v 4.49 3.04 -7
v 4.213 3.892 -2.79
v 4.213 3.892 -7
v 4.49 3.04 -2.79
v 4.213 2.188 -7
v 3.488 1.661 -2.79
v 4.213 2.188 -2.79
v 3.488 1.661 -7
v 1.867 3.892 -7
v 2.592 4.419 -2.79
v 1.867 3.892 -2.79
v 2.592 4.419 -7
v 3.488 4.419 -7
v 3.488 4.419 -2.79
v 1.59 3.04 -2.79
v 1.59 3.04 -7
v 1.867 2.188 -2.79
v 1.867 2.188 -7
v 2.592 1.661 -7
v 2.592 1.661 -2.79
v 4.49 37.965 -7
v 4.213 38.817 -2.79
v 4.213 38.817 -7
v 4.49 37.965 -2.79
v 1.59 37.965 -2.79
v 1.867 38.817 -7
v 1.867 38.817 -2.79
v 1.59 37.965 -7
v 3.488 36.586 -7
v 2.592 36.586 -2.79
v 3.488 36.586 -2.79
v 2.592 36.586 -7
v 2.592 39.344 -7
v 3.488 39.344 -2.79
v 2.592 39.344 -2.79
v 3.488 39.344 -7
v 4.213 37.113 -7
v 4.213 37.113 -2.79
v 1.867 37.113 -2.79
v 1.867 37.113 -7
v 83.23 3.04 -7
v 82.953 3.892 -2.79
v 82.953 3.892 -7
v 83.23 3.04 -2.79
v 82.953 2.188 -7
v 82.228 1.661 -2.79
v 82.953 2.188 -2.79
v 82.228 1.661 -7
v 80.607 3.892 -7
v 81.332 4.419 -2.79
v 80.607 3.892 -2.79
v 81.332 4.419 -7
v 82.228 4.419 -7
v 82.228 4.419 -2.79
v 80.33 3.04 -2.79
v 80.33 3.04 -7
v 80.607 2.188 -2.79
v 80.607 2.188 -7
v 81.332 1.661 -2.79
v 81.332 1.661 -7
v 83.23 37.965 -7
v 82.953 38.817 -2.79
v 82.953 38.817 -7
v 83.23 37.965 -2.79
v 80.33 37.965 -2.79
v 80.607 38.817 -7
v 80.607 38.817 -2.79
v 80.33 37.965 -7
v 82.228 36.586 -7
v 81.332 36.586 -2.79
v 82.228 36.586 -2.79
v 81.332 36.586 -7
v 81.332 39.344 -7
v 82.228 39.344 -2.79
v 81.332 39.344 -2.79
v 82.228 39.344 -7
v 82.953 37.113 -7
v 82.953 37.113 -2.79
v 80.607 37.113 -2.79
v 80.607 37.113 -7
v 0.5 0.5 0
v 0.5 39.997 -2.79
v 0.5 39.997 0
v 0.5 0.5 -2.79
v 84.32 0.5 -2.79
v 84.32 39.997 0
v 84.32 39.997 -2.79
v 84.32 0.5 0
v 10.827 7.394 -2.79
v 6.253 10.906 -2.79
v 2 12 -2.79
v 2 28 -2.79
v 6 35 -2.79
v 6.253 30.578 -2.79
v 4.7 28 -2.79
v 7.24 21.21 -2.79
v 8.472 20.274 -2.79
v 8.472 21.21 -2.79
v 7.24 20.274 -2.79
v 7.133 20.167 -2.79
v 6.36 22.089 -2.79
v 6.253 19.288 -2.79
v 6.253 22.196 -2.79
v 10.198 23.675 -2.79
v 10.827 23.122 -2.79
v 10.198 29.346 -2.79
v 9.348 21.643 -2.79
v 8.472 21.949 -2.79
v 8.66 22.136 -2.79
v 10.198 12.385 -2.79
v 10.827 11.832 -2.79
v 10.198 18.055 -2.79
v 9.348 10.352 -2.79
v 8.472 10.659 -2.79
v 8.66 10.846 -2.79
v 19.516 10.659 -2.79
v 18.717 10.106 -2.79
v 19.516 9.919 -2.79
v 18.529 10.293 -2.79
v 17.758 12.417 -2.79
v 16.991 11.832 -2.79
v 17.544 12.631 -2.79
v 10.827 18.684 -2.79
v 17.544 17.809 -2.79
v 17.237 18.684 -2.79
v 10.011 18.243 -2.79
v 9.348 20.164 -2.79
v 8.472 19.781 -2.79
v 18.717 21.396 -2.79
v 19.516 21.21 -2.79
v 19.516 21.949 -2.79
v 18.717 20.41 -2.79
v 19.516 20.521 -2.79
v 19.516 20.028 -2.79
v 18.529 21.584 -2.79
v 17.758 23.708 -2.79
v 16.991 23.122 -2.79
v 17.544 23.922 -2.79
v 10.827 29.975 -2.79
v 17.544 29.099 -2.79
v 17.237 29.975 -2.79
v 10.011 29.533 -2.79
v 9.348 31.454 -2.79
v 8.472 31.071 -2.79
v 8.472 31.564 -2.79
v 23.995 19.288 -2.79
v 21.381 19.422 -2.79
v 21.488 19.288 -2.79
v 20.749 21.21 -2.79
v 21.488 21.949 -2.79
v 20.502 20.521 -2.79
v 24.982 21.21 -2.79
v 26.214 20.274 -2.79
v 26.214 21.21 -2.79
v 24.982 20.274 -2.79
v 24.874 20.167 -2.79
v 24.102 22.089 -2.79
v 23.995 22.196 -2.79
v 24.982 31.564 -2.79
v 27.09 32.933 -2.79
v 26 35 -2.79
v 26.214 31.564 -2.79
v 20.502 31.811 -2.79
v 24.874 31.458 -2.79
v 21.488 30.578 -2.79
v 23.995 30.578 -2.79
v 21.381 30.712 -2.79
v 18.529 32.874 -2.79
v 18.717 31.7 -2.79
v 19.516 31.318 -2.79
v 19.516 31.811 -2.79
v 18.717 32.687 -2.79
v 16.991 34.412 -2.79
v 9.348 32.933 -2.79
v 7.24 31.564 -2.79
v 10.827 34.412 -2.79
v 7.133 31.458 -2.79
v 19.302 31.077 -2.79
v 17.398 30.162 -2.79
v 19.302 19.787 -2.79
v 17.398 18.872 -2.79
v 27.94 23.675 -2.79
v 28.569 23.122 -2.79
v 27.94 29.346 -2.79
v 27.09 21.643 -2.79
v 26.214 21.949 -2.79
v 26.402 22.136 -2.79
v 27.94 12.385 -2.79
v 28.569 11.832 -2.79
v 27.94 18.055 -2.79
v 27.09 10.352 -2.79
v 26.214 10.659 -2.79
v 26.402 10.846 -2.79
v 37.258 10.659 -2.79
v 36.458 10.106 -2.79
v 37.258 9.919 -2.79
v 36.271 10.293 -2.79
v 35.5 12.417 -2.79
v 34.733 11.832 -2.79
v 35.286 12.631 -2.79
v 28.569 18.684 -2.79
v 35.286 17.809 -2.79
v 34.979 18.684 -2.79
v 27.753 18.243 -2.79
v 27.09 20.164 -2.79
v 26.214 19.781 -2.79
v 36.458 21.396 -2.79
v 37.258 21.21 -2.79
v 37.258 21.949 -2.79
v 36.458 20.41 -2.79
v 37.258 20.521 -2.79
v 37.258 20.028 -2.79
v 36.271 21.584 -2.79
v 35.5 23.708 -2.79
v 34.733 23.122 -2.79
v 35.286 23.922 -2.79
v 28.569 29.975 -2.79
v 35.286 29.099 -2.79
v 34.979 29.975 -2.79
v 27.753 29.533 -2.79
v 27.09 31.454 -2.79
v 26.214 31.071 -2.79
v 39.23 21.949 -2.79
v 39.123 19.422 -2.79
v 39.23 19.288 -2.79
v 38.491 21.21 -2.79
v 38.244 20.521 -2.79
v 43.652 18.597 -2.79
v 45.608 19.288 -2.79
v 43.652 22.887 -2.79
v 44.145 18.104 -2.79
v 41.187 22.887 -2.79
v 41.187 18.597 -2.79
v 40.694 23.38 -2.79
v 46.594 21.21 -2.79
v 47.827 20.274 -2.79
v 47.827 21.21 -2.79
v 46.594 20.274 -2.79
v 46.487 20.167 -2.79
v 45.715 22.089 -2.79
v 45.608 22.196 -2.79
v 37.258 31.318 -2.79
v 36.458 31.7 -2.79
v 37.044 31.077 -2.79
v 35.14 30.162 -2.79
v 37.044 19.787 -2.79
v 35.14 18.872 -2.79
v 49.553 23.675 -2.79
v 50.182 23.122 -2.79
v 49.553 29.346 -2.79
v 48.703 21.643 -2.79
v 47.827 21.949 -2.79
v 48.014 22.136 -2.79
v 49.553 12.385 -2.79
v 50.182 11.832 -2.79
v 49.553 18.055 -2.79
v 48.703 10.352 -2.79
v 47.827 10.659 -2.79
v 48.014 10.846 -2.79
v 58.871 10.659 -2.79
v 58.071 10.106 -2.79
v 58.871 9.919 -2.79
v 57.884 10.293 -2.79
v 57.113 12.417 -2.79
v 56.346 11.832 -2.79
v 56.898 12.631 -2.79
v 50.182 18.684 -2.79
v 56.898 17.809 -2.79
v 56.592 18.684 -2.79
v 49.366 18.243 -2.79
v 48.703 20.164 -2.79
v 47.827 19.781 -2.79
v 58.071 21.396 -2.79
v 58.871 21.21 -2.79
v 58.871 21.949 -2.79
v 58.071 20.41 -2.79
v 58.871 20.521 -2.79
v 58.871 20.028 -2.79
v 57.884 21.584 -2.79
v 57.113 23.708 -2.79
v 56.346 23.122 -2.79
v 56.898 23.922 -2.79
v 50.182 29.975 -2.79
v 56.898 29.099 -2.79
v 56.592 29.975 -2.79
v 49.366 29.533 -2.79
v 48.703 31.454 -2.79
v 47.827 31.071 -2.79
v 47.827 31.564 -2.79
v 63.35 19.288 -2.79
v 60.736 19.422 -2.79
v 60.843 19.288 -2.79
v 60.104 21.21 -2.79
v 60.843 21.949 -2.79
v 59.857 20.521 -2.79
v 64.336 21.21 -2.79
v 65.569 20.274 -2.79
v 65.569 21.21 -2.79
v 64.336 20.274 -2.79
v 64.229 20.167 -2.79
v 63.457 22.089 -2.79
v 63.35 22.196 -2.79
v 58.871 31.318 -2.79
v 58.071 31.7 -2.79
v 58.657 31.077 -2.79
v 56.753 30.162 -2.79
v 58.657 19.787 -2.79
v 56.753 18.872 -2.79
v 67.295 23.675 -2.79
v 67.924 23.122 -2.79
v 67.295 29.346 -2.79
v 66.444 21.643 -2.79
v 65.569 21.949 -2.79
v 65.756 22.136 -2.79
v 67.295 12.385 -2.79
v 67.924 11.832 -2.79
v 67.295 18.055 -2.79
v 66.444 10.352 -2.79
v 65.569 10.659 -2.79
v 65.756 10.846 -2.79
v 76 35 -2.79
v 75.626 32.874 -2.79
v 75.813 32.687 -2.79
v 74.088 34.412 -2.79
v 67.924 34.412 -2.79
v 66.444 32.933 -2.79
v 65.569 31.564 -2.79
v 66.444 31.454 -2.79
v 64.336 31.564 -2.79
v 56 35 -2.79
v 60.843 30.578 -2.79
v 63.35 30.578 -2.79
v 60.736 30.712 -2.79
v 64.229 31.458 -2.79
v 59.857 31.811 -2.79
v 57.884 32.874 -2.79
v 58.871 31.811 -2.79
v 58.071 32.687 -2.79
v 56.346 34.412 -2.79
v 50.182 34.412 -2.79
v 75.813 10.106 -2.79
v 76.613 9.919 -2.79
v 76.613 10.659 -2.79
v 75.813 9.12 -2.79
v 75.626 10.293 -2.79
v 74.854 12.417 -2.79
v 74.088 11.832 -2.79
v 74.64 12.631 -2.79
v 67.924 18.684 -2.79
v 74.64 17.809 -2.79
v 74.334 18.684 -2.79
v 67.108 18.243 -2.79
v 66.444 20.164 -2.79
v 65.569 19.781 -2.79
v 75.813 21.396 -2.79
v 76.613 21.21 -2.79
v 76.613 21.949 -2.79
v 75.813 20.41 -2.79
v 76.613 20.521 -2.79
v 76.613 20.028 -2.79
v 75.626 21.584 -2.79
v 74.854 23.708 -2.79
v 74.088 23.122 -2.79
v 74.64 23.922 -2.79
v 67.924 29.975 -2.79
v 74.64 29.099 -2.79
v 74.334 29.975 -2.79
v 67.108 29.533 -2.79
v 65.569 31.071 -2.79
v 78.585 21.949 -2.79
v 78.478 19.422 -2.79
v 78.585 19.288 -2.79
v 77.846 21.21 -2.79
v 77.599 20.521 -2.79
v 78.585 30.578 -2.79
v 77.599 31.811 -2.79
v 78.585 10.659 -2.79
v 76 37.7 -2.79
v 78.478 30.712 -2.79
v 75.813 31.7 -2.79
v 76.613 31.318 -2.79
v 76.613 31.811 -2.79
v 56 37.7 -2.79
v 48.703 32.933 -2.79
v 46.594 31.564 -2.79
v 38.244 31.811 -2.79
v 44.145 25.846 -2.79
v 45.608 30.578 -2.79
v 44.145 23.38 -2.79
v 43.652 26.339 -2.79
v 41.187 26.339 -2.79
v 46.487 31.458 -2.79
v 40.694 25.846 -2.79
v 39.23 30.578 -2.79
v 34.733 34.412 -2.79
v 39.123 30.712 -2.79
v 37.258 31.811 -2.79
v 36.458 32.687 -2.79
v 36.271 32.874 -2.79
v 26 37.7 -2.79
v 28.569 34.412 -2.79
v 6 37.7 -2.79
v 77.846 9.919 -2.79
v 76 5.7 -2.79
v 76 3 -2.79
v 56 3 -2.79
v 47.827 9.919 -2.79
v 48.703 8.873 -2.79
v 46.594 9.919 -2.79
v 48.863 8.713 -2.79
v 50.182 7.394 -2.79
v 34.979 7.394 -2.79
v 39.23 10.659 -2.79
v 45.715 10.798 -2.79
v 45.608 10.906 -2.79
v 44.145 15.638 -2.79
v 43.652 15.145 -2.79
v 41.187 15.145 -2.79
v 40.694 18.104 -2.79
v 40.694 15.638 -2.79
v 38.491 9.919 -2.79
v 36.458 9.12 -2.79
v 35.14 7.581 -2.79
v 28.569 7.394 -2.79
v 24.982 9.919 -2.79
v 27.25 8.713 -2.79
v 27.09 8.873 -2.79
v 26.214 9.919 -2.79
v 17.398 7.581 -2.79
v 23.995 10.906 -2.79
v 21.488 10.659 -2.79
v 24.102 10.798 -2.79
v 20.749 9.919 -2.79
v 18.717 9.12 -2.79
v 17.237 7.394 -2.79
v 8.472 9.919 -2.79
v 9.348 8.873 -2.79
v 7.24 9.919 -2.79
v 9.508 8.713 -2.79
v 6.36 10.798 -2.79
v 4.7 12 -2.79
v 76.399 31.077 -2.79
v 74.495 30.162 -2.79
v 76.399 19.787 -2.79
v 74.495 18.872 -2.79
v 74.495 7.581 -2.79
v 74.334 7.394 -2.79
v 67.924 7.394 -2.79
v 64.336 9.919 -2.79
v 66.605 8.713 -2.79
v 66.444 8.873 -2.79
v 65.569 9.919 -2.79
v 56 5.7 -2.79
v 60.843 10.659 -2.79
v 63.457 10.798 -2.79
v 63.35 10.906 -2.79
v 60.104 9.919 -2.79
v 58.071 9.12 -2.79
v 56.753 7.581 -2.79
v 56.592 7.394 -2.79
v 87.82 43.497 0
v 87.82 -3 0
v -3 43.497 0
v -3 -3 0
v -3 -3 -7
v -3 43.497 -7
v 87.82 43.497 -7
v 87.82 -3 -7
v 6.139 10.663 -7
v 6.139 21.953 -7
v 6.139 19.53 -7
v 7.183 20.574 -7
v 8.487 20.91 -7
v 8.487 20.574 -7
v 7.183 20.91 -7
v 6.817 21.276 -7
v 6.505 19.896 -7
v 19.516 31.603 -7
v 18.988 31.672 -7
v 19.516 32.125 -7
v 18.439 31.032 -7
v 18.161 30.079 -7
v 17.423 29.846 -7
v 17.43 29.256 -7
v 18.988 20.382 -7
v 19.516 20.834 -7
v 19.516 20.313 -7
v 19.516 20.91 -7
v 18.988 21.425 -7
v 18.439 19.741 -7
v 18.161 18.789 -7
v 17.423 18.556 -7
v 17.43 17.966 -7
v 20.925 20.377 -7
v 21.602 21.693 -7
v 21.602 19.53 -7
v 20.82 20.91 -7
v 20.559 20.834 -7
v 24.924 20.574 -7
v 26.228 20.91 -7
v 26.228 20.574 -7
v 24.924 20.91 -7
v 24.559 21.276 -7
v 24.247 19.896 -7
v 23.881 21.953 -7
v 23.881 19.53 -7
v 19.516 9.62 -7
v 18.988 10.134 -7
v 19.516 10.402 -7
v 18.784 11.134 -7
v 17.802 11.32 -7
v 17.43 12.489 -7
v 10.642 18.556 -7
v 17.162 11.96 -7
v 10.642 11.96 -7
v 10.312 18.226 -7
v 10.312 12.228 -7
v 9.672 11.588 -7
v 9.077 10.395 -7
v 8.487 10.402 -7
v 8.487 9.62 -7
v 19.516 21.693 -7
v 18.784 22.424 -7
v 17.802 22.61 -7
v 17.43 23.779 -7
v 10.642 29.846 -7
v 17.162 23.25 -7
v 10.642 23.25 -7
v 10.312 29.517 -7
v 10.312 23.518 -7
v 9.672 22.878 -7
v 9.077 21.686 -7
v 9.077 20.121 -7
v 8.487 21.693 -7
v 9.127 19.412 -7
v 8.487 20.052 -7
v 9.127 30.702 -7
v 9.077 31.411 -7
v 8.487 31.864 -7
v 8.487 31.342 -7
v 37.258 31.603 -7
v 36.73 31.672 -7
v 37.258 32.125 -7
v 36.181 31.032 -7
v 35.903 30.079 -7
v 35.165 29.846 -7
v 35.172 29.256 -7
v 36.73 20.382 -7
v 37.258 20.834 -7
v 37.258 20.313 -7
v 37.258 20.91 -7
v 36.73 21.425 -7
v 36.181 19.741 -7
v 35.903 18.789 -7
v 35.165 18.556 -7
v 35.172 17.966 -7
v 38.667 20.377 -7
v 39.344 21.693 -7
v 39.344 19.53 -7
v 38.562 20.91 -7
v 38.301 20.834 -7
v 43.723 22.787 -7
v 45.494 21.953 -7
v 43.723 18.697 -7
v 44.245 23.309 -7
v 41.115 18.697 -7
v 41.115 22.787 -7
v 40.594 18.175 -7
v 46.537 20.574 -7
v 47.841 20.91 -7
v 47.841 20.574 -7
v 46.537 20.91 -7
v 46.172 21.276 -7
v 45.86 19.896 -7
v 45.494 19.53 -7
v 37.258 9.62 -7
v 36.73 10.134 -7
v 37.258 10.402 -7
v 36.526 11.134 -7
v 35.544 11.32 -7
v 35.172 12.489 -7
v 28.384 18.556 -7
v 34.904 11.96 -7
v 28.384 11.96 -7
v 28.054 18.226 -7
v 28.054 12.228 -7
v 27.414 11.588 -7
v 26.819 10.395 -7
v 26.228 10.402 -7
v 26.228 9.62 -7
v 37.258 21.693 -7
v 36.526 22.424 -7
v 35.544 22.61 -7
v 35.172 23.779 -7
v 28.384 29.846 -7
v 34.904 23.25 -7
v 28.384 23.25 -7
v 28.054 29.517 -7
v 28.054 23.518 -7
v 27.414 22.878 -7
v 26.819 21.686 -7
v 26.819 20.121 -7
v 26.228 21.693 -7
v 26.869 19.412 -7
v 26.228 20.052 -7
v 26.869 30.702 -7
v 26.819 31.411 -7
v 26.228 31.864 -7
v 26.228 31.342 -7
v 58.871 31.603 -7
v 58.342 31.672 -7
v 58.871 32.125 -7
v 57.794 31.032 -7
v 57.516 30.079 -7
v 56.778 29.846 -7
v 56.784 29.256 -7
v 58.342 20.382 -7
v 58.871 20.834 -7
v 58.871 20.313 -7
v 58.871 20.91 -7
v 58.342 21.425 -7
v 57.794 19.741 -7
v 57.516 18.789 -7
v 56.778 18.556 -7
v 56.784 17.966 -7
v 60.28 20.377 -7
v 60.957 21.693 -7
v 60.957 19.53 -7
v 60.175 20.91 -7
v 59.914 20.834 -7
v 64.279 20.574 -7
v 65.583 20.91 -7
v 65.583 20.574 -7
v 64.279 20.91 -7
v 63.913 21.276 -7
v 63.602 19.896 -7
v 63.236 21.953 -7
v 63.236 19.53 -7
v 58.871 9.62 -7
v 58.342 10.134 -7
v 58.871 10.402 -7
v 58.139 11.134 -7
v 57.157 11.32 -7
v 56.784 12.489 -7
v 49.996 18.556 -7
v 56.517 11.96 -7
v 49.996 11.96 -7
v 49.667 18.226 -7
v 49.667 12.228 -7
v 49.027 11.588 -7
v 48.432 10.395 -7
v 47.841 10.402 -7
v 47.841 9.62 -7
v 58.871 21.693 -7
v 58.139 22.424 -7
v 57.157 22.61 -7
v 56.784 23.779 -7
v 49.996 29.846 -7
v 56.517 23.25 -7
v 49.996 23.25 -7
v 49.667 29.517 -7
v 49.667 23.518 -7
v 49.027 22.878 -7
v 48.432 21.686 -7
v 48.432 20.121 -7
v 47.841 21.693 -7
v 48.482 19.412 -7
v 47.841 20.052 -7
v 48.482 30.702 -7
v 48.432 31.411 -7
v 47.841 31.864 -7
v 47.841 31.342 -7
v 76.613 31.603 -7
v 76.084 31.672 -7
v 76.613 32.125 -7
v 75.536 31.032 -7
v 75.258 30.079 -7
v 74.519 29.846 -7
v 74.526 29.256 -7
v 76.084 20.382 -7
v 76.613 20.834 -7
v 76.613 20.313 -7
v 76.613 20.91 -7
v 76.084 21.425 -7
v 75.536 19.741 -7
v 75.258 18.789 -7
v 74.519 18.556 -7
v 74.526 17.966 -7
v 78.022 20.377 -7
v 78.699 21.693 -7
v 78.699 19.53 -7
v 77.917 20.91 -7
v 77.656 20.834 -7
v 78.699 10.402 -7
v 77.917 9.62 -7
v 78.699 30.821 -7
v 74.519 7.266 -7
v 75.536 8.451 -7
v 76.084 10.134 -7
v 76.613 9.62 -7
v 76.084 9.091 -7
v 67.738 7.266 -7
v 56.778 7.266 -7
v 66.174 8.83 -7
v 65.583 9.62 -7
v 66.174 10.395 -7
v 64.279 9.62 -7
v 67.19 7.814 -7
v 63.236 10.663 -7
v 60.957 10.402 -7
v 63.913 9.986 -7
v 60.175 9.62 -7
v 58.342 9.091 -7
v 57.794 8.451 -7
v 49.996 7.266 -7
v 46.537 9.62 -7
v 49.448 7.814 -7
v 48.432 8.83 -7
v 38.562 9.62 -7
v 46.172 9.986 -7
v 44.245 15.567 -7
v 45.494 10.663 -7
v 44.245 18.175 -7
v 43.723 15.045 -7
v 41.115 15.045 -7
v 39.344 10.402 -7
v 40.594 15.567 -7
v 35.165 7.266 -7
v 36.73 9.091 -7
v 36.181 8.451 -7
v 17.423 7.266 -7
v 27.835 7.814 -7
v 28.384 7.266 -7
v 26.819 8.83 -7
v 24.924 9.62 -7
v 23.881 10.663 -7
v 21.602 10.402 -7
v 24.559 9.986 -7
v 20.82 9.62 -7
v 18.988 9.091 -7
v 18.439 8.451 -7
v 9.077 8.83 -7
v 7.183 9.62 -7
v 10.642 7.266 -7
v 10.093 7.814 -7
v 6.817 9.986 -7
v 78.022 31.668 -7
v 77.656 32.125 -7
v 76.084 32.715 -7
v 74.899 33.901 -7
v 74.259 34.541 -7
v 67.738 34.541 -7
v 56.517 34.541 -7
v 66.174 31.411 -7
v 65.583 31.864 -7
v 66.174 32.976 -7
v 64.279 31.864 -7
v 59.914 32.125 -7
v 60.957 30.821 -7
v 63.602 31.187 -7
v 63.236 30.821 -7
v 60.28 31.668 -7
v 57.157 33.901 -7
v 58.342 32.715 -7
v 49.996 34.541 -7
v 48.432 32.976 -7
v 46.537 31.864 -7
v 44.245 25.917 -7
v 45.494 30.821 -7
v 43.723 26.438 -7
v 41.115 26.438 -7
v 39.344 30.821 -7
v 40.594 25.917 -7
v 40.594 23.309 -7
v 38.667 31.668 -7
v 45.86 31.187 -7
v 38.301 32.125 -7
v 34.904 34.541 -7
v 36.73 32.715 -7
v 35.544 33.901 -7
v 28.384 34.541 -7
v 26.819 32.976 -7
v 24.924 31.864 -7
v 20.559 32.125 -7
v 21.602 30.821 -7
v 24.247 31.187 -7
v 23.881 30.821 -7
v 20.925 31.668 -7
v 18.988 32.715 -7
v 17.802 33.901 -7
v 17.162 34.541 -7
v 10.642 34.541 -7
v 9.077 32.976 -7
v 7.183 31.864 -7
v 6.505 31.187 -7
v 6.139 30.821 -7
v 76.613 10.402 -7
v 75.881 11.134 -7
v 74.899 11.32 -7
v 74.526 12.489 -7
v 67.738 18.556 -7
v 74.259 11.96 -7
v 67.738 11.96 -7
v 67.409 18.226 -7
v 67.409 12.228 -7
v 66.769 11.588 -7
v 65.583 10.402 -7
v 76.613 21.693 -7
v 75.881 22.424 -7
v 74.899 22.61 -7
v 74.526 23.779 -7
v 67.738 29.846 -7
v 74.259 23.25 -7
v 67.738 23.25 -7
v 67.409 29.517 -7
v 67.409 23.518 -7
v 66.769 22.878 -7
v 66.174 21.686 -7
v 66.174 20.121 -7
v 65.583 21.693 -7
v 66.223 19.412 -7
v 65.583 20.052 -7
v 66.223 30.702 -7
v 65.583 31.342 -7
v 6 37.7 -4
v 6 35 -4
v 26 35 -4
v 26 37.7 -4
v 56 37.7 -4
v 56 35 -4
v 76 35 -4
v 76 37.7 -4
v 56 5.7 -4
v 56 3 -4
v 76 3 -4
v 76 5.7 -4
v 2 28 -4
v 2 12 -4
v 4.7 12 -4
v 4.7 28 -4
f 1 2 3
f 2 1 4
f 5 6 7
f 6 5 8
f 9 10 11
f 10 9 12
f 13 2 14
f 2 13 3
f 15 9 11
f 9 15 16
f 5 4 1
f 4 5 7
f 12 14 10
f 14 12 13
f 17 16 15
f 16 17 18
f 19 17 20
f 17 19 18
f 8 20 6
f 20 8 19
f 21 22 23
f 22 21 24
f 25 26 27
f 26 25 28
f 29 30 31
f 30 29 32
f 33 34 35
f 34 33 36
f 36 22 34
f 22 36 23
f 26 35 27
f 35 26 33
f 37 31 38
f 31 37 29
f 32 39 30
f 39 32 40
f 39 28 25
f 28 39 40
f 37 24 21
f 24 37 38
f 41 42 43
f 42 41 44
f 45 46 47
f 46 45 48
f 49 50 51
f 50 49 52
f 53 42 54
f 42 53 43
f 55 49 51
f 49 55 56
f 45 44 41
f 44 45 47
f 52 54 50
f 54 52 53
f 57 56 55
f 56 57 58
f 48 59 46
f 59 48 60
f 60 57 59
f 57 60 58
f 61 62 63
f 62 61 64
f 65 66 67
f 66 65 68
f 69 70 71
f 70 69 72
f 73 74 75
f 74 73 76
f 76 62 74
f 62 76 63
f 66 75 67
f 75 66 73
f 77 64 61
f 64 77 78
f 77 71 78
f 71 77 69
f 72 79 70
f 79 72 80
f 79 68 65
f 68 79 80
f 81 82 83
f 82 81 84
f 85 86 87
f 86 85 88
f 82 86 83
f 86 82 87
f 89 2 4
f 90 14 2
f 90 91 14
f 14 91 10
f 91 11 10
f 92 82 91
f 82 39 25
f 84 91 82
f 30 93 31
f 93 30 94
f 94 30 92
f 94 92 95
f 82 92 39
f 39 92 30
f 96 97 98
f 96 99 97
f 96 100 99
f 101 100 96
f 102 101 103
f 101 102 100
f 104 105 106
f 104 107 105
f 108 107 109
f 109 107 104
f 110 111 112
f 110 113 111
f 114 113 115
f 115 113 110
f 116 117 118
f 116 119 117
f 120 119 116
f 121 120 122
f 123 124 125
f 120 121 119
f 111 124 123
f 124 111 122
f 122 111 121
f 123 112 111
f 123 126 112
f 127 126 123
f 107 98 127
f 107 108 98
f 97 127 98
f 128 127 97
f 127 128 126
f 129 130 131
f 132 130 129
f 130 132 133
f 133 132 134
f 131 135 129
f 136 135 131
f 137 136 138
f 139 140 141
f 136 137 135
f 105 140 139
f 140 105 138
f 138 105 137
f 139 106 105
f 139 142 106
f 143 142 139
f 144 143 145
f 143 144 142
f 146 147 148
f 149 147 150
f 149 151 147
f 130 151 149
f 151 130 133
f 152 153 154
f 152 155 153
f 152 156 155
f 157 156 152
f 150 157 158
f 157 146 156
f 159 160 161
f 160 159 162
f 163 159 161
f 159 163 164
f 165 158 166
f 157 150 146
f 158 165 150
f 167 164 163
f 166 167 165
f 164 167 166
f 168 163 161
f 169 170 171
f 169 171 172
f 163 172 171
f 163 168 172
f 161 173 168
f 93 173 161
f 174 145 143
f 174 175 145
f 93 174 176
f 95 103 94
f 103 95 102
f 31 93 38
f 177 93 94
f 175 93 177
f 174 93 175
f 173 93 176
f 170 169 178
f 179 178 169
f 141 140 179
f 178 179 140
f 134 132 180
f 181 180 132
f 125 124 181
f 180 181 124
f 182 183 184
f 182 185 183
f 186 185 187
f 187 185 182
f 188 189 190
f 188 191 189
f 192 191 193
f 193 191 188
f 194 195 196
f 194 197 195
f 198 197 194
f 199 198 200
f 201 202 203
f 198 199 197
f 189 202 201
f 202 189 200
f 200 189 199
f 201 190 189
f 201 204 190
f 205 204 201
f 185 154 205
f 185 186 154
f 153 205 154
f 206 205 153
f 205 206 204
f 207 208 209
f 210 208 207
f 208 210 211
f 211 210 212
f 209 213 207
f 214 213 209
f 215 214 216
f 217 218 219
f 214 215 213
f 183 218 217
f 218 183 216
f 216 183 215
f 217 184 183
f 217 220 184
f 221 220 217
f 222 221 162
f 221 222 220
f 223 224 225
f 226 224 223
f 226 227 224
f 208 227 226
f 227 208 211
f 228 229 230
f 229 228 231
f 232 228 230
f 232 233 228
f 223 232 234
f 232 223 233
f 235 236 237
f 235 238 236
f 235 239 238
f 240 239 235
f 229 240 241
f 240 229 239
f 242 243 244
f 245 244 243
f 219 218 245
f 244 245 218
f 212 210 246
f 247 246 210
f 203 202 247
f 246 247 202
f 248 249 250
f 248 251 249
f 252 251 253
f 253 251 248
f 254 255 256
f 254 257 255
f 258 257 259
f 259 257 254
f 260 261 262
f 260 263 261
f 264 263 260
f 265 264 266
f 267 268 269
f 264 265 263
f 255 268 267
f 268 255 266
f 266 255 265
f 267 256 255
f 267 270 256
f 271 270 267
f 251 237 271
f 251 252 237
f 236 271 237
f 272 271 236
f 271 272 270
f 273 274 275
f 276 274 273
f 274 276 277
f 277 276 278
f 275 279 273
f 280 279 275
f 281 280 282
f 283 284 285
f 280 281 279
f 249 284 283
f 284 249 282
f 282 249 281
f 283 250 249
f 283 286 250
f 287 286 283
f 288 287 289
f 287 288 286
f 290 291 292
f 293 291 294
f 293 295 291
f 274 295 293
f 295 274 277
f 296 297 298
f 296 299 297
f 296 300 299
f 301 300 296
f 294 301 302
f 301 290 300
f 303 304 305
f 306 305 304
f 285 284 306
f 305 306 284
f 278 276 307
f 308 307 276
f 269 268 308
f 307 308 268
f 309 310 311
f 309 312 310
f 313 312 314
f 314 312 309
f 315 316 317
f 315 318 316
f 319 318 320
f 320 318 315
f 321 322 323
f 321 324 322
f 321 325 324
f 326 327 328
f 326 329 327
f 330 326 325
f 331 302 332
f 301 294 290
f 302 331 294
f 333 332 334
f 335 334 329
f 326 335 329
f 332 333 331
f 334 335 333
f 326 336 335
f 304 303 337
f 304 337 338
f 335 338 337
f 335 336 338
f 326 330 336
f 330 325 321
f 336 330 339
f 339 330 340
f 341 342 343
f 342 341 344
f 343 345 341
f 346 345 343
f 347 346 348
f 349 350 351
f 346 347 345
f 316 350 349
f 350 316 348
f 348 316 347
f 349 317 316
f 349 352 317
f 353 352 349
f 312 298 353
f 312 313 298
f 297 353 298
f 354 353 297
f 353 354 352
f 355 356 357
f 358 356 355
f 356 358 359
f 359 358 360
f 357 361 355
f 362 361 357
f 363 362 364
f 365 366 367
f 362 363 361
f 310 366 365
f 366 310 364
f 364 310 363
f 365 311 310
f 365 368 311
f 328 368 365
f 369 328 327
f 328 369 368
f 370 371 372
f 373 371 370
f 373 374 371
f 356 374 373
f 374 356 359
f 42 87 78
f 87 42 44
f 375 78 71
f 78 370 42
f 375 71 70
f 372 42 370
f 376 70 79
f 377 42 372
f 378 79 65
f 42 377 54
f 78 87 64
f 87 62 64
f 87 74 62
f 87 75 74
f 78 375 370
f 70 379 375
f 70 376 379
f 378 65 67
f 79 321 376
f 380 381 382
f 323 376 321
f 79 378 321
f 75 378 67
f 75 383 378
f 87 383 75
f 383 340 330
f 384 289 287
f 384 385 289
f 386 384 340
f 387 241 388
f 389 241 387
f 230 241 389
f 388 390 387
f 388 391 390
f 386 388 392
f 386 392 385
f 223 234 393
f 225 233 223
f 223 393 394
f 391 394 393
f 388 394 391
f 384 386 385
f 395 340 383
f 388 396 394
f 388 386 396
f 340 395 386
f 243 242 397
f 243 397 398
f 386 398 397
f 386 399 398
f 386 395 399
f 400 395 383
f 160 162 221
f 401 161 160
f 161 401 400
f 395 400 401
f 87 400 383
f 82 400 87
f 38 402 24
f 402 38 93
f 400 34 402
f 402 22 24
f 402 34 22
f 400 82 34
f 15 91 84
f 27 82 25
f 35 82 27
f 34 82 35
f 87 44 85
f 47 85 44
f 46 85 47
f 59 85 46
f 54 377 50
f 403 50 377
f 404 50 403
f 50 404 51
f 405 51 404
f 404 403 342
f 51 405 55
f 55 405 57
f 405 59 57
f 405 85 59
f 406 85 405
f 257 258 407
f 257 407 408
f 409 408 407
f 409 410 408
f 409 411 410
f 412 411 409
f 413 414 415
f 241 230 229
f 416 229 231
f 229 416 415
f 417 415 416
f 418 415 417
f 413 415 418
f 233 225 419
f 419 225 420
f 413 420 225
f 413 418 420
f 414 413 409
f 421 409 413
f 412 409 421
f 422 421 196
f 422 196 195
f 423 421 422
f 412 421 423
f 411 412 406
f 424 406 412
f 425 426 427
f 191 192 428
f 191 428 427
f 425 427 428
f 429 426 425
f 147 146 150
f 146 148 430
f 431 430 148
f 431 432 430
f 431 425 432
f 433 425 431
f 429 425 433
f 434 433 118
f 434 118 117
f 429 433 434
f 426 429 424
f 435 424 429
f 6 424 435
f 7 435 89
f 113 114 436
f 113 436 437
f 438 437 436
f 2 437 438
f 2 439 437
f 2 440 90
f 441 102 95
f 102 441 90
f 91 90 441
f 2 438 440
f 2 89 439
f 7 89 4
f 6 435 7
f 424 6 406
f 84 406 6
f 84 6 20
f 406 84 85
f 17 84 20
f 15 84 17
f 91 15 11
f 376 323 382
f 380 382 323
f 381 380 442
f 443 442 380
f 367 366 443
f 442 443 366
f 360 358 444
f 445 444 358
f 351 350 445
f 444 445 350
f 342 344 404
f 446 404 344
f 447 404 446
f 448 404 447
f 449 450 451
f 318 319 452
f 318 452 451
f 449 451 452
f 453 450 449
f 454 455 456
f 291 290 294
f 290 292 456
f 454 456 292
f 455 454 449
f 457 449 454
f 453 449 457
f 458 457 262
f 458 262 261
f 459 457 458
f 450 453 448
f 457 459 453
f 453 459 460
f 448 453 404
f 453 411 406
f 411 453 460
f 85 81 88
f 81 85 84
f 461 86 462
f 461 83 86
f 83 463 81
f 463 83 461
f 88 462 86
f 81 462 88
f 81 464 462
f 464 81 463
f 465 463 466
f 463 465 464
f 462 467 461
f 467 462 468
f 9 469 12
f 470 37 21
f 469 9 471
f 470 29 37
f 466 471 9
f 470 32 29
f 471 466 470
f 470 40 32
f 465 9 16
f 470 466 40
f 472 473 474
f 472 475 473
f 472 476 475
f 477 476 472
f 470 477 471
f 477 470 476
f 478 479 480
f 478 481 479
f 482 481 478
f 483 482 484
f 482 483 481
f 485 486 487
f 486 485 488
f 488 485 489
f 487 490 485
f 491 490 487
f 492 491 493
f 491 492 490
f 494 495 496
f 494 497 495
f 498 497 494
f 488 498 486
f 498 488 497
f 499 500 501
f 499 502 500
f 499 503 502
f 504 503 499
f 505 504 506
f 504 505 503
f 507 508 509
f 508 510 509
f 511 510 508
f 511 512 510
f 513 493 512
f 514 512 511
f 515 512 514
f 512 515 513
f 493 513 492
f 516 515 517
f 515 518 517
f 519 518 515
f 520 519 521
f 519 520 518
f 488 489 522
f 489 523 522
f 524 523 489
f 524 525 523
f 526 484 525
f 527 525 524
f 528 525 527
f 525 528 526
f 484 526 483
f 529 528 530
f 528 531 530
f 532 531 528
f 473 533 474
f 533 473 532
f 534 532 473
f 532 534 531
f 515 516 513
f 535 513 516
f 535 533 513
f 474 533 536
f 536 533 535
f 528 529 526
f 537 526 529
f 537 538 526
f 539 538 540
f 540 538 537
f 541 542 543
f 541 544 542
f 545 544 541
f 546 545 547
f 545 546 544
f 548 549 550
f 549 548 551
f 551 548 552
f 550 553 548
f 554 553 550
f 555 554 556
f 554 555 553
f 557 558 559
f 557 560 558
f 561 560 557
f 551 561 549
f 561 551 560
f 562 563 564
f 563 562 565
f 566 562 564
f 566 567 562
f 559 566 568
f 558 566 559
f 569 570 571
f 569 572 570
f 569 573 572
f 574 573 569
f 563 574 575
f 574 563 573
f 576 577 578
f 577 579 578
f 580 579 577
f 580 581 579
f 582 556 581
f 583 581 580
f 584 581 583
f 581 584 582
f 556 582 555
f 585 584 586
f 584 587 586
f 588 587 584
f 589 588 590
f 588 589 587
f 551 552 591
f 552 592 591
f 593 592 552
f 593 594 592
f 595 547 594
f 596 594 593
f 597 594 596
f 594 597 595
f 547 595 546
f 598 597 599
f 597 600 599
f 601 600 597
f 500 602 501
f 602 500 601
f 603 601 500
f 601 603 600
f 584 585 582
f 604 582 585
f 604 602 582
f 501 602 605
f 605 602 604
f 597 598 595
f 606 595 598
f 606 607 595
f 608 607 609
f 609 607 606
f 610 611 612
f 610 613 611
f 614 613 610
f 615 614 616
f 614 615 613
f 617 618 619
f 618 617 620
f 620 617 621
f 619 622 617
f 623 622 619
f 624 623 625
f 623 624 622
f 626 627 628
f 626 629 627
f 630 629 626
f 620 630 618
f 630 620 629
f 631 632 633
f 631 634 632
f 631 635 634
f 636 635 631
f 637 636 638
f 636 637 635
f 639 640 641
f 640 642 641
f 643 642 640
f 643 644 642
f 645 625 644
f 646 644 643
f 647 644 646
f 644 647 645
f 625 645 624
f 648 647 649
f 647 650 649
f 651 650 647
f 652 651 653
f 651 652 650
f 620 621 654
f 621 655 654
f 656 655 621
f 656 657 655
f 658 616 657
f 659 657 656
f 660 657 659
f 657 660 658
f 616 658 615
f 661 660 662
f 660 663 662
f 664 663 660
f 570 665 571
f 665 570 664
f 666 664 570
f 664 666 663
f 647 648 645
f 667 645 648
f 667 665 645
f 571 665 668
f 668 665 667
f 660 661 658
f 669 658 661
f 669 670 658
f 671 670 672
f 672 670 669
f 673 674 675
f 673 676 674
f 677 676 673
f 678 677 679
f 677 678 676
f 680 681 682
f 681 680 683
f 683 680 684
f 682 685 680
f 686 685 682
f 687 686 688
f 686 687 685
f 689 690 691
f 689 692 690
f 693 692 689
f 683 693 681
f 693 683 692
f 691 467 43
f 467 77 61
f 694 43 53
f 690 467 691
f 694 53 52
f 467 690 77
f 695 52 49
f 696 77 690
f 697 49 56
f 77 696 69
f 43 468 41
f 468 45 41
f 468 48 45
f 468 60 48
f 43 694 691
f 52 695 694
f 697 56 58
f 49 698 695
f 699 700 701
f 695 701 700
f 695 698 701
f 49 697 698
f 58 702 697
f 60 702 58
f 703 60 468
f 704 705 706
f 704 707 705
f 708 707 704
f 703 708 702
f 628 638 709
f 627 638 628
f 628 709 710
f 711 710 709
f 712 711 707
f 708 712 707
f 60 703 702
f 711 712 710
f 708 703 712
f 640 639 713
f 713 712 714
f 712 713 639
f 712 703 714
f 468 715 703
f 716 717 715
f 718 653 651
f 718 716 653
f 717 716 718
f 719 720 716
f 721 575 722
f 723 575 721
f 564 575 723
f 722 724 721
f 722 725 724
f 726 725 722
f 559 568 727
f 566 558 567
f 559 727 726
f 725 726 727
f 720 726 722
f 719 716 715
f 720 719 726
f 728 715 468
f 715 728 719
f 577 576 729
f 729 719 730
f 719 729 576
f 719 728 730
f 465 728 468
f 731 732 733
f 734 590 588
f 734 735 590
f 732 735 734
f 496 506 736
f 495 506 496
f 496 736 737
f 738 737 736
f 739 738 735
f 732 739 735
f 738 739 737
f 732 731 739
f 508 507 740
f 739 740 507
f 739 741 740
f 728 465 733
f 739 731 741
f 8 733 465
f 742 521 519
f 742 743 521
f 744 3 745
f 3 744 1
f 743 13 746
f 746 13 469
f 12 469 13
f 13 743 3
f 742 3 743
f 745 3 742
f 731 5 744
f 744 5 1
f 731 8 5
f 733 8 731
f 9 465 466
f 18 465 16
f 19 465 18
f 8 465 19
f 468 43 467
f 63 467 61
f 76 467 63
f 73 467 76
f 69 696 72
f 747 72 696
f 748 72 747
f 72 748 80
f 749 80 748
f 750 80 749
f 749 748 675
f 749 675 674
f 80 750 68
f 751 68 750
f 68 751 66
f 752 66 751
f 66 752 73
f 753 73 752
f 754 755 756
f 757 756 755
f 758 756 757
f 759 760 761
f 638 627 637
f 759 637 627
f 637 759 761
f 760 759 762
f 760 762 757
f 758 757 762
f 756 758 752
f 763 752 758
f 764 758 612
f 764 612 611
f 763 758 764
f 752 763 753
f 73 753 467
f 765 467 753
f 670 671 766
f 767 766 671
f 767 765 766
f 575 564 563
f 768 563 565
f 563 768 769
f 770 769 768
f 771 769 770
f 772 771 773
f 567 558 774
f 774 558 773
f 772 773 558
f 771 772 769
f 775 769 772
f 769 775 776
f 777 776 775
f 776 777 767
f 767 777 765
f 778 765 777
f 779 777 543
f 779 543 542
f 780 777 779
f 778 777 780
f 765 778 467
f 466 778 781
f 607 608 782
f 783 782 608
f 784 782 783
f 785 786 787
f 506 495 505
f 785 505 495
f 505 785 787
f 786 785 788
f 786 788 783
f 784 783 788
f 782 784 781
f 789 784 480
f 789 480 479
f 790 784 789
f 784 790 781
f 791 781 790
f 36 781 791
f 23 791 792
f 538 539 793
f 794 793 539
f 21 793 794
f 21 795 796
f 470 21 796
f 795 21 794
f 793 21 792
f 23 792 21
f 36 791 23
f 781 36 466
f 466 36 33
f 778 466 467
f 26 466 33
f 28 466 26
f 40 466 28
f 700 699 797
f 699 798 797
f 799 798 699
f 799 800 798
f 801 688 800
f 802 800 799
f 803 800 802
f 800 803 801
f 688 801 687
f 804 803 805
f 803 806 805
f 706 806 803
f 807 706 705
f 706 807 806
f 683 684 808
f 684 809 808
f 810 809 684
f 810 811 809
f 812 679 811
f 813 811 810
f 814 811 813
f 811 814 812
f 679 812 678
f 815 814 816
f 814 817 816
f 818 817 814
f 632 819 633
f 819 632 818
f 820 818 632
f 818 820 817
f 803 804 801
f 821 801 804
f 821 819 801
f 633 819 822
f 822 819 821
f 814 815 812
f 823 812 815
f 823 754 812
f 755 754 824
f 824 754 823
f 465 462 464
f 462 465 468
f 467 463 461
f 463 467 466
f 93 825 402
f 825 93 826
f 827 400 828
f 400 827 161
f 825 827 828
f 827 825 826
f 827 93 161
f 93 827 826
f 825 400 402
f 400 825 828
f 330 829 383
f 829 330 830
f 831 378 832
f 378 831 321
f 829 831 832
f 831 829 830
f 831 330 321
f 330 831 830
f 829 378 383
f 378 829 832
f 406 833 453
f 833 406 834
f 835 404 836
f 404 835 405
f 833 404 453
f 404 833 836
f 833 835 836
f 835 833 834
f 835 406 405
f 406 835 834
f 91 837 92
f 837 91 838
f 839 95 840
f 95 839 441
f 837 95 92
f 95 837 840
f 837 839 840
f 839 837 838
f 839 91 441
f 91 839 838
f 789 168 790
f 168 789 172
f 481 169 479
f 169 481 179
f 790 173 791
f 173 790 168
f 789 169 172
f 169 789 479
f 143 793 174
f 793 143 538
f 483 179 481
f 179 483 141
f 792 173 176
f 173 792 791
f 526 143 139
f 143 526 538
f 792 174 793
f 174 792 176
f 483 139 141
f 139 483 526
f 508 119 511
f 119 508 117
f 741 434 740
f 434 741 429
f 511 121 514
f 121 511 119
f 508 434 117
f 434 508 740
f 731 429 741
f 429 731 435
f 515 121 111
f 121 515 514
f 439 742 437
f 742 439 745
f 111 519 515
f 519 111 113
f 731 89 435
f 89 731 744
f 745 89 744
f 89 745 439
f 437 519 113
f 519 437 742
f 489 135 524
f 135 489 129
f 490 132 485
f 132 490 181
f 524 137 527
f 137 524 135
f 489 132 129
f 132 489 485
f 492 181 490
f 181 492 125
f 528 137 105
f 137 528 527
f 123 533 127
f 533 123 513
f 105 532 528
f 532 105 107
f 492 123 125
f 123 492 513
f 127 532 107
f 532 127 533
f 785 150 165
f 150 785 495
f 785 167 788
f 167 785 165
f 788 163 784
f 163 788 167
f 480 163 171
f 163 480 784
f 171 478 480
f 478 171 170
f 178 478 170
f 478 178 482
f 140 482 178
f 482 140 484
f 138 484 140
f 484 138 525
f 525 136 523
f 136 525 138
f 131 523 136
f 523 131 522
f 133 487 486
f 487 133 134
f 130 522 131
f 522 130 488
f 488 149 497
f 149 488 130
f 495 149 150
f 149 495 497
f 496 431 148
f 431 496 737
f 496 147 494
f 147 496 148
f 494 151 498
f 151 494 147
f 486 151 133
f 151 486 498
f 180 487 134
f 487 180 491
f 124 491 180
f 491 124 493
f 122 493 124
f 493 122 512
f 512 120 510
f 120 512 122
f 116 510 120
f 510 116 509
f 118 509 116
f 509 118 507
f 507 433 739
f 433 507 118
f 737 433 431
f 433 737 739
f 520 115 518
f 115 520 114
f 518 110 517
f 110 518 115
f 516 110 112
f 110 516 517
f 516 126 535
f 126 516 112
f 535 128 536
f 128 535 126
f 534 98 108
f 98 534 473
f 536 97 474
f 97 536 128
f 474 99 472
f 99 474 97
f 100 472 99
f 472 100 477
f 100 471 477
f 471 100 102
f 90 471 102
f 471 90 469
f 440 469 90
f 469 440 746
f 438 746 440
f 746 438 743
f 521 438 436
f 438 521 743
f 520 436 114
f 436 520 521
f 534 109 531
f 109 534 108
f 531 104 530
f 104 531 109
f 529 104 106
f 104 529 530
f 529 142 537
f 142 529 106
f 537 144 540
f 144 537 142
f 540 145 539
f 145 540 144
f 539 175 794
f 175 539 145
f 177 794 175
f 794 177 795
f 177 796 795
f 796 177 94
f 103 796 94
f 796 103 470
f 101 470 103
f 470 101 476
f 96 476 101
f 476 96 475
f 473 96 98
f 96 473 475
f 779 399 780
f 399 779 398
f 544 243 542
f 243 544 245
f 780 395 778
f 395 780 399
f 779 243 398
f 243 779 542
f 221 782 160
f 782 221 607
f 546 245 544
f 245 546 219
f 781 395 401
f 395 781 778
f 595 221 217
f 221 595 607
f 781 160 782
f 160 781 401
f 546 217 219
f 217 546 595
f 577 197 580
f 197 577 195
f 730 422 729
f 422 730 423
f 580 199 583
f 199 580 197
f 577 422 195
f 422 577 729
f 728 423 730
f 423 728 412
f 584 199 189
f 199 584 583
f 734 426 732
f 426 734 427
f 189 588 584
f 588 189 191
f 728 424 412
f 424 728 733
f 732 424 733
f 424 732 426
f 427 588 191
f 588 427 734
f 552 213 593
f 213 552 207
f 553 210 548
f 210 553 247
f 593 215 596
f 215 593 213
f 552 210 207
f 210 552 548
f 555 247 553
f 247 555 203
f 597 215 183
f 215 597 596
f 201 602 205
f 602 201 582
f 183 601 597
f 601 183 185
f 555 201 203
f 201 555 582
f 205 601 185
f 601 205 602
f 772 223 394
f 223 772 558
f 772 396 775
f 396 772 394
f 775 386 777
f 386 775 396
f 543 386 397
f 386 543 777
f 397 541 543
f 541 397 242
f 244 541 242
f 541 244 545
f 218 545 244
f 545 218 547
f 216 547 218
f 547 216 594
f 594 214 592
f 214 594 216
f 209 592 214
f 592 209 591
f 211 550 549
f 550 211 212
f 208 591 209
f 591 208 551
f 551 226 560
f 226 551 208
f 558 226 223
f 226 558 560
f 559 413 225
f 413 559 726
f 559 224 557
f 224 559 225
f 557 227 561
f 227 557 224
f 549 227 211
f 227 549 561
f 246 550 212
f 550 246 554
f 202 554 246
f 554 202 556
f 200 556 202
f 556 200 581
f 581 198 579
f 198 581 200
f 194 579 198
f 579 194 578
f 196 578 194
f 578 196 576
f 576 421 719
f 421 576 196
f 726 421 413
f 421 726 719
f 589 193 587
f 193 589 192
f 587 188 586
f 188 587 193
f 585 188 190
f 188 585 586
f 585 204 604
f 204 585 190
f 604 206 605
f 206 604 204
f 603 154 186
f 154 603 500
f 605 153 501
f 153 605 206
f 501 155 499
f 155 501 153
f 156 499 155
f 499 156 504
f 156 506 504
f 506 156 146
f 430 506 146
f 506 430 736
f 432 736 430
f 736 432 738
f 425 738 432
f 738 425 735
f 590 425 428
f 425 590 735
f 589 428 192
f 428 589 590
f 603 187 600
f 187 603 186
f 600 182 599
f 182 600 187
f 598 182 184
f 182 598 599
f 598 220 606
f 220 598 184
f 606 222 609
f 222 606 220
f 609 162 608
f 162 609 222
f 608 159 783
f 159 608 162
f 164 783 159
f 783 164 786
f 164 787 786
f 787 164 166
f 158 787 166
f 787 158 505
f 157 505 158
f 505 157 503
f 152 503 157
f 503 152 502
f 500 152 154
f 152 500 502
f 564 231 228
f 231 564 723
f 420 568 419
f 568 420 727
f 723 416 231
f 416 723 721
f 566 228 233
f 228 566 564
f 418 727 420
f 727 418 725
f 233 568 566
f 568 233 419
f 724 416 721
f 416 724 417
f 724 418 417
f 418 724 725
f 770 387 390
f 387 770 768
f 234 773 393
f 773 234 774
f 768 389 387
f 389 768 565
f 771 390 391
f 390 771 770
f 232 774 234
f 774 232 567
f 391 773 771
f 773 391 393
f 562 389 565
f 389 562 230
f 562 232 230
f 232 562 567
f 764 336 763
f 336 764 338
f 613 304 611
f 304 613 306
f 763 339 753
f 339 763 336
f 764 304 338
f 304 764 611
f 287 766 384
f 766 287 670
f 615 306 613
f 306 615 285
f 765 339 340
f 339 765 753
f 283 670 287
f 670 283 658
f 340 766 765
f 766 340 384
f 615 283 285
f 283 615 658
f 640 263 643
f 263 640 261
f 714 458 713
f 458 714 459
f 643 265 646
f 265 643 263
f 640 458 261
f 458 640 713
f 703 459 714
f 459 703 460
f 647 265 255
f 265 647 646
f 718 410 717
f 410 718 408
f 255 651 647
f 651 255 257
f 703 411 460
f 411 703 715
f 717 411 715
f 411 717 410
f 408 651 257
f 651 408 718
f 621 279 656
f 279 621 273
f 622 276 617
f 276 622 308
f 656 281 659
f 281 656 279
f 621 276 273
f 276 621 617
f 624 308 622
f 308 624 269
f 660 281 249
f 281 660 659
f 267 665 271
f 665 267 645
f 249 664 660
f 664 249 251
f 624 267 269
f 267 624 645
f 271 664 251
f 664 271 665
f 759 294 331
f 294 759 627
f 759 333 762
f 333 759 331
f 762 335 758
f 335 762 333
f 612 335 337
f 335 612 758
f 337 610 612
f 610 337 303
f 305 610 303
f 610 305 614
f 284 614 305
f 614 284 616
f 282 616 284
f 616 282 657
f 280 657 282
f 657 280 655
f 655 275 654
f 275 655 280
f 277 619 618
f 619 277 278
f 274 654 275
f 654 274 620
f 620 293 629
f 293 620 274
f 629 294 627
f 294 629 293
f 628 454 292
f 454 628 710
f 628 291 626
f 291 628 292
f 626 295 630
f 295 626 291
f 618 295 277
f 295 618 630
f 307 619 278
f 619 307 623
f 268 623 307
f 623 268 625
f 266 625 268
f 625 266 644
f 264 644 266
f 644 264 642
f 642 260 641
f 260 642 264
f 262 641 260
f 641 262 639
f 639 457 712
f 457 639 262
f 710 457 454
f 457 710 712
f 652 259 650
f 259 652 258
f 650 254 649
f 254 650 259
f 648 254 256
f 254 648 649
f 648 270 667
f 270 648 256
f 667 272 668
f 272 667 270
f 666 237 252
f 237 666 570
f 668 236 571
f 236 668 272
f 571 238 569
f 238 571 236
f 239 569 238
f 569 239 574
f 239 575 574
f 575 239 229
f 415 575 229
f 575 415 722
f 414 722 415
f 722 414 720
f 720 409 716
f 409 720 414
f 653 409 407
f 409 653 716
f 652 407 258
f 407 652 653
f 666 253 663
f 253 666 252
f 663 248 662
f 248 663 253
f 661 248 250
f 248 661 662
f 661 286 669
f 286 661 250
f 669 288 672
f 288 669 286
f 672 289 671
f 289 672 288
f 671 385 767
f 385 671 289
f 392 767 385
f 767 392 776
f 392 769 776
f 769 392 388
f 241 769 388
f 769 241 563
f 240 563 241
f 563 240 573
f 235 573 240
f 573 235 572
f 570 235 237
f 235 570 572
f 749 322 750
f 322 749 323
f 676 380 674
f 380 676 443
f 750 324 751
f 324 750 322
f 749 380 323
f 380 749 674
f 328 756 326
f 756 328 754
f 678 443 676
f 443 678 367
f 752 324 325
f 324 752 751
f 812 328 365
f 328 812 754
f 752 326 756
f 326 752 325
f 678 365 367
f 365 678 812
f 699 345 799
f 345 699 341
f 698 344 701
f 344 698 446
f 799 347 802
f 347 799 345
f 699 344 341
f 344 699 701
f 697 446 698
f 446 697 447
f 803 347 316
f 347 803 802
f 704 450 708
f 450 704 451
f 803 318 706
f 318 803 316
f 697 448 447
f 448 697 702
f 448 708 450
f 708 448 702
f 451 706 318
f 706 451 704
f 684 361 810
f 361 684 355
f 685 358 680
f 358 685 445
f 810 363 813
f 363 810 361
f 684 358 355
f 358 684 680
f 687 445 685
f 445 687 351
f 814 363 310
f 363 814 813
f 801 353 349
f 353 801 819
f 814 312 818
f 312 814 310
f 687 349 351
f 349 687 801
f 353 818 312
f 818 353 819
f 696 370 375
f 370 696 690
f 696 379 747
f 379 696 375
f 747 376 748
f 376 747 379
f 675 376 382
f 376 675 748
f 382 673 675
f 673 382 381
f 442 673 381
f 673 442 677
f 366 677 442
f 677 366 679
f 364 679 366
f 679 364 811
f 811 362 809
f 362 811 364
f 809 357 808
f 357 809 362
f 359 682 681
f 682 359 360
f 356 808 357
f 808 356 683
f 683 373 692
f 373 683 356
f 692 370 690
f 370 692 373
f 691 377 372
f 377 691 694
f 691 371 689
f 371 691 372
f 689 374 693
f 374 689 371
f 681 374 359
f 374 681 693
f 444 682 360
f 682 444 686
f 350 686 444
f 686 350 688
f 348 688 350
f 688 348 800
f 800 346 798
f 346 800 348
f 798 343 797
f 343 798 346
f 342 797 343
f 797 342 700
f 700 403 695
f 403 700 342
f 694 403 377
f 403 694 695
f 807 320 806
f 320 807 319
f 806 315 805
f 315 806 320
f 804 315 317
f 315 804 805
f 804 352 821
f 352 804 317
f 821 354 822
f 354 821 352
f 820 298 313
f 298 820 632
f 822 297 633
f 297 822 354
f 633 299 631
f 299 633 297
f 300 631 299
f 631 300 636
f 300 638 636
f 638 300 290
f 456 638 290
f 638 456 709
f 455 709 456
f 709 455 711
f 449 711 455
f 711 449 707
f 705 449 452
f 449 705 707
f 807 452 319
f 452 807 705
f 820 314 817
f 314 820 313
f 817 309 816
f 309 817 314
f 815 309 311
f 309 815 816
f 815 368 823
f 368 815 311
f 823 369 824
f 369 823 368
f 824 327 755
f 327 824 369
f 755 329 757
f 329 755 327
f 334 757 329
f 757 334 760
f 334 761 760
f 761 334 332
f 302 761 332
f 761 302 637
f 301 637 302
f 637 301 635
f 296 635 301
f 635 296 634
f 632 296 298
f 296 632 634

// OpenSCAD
$fn = 10;

skinBreak = 0.01;       // extra depth to poke a hole through a surface

//boardW = 146;
//boardH = 63.7;     // was 63.45 - tight

// Eagle dimensions of v.2 board
//  + slop to fit
eagleBoardW = (33 * 2.54);      // 83.82;
eagleBoardH = (15.55 * 2.54); // 39.37;
eagleBoardD = 2.8; // 1.8;
eagleBoardX = .5;       // offset into board hole (1/2 of fudge value)
eagleBoardY = .5;
eagleBoardZ = 0;
boardW = eagleBoardW + (eagleBoardX*2);
boardH = eagleBoardH + (eagleBoardY*2);
boardD = eagleBoardD + skinBreak;

boardX = 0;
boardY = 4;

boardFrameW = 3;
boardFrameX = 0;
boardFrameY = 0;

reflectorWidth = boardW;
reflectorHeight = boardH + boardFrameW;
reflectorDepth = 7;
refOffZ = reflectorDepth / 2;

strokeWidth = 0.3;



segMul = 1.27;


headerHeight = 2.7;
headerYOffset = 35;
headerAOffset = 6;
headerAWidth = 20;
headerBOffset = 56;
headerBWidth = 20;
headerY2Offset =  3;
headerCOffset = 56;
headerCWidth = 20;
headerY3Offset = 12;
headerDOffset = 2;
headerDHeight = 16;
headerDepth = 10;
headerBackDepth = 4;

module pinClearance() {
    // pixel I/O header
        translate([headerAOffset, headerYOffset, -headerBackDepth])
            cube([headerAWidth, headerHeight, headerDepth]);
    // I2C header
        translate([headerBOffset, headerYOffset, -headerBackDepth])
            cube([headerBWidth, headerHeight, headerDepth]);
    // prog header
        translate([headerCOffset, headerY2Offset, -headerBackDepth])
            cube([headerCWidth, headerHeight, headerDepth]);
    // pwr/spk header
        translate([headerDOffset, headerY3Offset, -headerBackDepth])
            #cube([headerHeight, headerDHeight, headerDepth]);



powerW = 12;
powerH = 13;
powerD = 7;
powerX = 107;
powerY = 0;
powerZ = -2;
    // power jack pins
    translate([powerX, boardH-powerH+powerY, powerZ])
        cube([powerW, powerH, powerD]);

npW = 11;
npH = 4;
npD = 5;
npX = 125;
npY = -1;
npZ = -1;
    // neopixel out pins
    translate([npX, boardH-npH+npY, npZ])
        cube([npW, npH, npD]);


}



segMul = .254 * 2.54;

adgOffX = 8;
adgOffY = 3;
aOffX = 4;
aOffY = 34.5;
dOffY = -.5;
gOffY = 17;
adgSeg = [ [-9.5,-1.5], [-9.5,1.5], [-6.5,4.5], [6,4.5], [9.5,1], [9.5,-1], [6.5,-4.5], [-6.5,-4.5] ];

bcOffX = 20.5;
bcOffY = 8.5;
bOffY = 20;
cOffY = 2.5;
bcSeg = [ [-4,-5], [-4,5.5], [0,10], [0,11], [2,11], [4,8.5], [4,-9], [2.5,-10.5], [0,-10.5], [0,-9] ];

efOffX = 3;
efOffY = 8.5;
eOffY = 2.5;
fOffY = 20;
efSeg = [ [.5,-10.5], [-2,-10.5], [-4,-8.5], [-4,8.5], [-2,10.5],  [.5,10.5],  [.5,9.5],  [4,6],  [4,-5.5],  [.5,-9] ];

colonCenterX = 3;
colonCenterY = 3;
colonOffY = 10.75;
colonOffY2 = 22.75;
colonSeg = [ [-3.5,-2.5], [-3.5,2.5],  [-2.5,3.5],  [2.5,3.5],  [3.5,2.5],  [3.5,-2.5],  [2.5,-3.5],  [-2.5,-3.5] ];

module segment(path) {
    scale([.84, .84, 1])
 #   linear_extrude(height = reflectorDepth+1, center=true, scale=.9)
        polygon(path);
}


segOffZ = -2.5;
module sevenSeg() {
    
    translate([adgOffX + aOffX, adgOffY + aOffY, segOffZ])
        segment(adgSeg);
    translate([adgOffX + aOffX, adgOffY + dOffY, segOffZ])
        segment(adgSeg);
    translate([adgOffX + aOffX, adgOffY + gOffY, segOffZ])
        segment(adgSeg);

    translate([bcOffX, bcOffY + bOffY, segOffZ])
        segment(bcSeg);
    translate([bcOffX, bcOffY + cOffY, segOffZ])
        segment(bcSeg);
    translate([efOffX, efOffY + eOffY, segOffZ])
        segment(efSeg);
    translate([efOffX, efOffY + fOffY, segOffZ])
        segment(efSeg);
}

module colons() {
    translate([colonCenterX, colonCenterY + colonOffY, segOffZ])
        segment(colonSeg);
    translate([colonCenterX, colonCenterY + colonOffY2, segOffZ])
        segment(colonSeg);
}

pixelArray = [ [3,5], [3,6.5], [3,9.5], [3,11],
    [4.5,3.5], [4.5,8], [4.5,12.5], 
    [6,3.5], [6,8], [6,12.5],
    [7.5,5], [7.5,6.5], [7.5,9.5], [7.5,11],
    [10,5], [10,6.5], [10,9.5], [10,11],
    [11.5,3.5], [11.5,8], [11.5,12.5], 
    [13,3.5], [13,8], [13,12.5],
    [14.5,5], [14.5,6.5], [14.5,9.5], [14.5,11],
    [16.5,6.5], [16.5,9.5],
    [18.5,5], [18.5,6.5], [18.5,9.5], [18.5,11],
    [20,3.5], [20,8], [20,12.5],
    [21.5,3.5], [21.5,8], [21.5,12.5],
    [23,5], [23,6.5], [23,9.5], [23,11],
    [25.5,5], [25.5,6.5], [25.5,9.5], [25.5,11],
    [27,3.5], [27,8], [27,12.5],
    [28.5,3.5], [28.5,8], [28.5,12.5],
    [30,5], [30,6.5], [30,9.5], [30,11],
 ];

pixelW = 2.5;
pixelH = 2.5;

module pixels() {
        for (i=pixelArray) {
 //           echo(2.54*i[0], 2.54*i[1]);
            translate([2.54*i[0]-pixelW/2, 2.54*i[1]-pixelH/2, -1])
                #cube([pixelW,pixelH,1]);
        }
}

module miniMountingHoles() {
holeX1 = 1 * 2.54;
holeX2 = 32 * 2.54;
holeY1 = 1 * 2.54;
holeY2 = 14.75 * 2.54;
holeZ = 0;
holeR = 2.9/2;
holeD = 10;
    // mounting holes
    translate([holeX1, holeY1, holeZ])
        cylinder(r=holeR, h=holeD, center=true);
    translate([holeX1, holeY2, holeZ])
        cylinder(r=holeR, h=holeD, center=true);
    translate([holeX2, holeY1, holeZ])
        cylinder(r=holeR, h=holeD, center=true);
    translate([holeX2, holeY2, holeZ])
        cylinder(r=holeR, h=holeD, center=true);

}


module miniboard() {
    cube([eagleBoardW, eagleBoardH, eagleBoardD]);
//    pixels();
    miniMountingHoles();
}

module xxx() {
    refX = 5;
    refY = 5;
        translate([refX, refY + 3, 0]) {
            scale([segMul, segMul, 1])
                union() {
        
                translate([1, 0, -refOffZ]) {
                    translate([1, 0, 0])
                        sevenSeg();
                    translate([28.5, 0, 0])
                        sevenSeg();
                    
                    translate([54, 0, 0])
                        colons();
                    
                    translate([62, 0, 0])
                        sevenSeg();
                    translate([89.5, 0, 0])
                        sevenSeg();
                }
            }
        }

}

test = 1;
if (test) {
   difference() {
       union() {
            translate([0, 0, -boardD])
                cube([boardW, boardH, boardD]);
            // base to carve everything out of
            translate([boardFrameX-boardFrameW, boardFrameY-boardFrameW, -reflectorDepth])
                cube([boardW+boardFrameW*2, reflectorHeight+boardFrameW, reflectorDepth]);
      }
      translate([eagleBoardX, eagleBoardY, -boardD+skinBreak*2])
        miniboard();
      pinClearance();
       xxx();
   }
 //        translate([eagleBoardX, eagleBoardY, -boardD+skinBreak*2])
 //     pixels();
}
else {
if (!LIBRARY)
    miniclock_reflector();
}
